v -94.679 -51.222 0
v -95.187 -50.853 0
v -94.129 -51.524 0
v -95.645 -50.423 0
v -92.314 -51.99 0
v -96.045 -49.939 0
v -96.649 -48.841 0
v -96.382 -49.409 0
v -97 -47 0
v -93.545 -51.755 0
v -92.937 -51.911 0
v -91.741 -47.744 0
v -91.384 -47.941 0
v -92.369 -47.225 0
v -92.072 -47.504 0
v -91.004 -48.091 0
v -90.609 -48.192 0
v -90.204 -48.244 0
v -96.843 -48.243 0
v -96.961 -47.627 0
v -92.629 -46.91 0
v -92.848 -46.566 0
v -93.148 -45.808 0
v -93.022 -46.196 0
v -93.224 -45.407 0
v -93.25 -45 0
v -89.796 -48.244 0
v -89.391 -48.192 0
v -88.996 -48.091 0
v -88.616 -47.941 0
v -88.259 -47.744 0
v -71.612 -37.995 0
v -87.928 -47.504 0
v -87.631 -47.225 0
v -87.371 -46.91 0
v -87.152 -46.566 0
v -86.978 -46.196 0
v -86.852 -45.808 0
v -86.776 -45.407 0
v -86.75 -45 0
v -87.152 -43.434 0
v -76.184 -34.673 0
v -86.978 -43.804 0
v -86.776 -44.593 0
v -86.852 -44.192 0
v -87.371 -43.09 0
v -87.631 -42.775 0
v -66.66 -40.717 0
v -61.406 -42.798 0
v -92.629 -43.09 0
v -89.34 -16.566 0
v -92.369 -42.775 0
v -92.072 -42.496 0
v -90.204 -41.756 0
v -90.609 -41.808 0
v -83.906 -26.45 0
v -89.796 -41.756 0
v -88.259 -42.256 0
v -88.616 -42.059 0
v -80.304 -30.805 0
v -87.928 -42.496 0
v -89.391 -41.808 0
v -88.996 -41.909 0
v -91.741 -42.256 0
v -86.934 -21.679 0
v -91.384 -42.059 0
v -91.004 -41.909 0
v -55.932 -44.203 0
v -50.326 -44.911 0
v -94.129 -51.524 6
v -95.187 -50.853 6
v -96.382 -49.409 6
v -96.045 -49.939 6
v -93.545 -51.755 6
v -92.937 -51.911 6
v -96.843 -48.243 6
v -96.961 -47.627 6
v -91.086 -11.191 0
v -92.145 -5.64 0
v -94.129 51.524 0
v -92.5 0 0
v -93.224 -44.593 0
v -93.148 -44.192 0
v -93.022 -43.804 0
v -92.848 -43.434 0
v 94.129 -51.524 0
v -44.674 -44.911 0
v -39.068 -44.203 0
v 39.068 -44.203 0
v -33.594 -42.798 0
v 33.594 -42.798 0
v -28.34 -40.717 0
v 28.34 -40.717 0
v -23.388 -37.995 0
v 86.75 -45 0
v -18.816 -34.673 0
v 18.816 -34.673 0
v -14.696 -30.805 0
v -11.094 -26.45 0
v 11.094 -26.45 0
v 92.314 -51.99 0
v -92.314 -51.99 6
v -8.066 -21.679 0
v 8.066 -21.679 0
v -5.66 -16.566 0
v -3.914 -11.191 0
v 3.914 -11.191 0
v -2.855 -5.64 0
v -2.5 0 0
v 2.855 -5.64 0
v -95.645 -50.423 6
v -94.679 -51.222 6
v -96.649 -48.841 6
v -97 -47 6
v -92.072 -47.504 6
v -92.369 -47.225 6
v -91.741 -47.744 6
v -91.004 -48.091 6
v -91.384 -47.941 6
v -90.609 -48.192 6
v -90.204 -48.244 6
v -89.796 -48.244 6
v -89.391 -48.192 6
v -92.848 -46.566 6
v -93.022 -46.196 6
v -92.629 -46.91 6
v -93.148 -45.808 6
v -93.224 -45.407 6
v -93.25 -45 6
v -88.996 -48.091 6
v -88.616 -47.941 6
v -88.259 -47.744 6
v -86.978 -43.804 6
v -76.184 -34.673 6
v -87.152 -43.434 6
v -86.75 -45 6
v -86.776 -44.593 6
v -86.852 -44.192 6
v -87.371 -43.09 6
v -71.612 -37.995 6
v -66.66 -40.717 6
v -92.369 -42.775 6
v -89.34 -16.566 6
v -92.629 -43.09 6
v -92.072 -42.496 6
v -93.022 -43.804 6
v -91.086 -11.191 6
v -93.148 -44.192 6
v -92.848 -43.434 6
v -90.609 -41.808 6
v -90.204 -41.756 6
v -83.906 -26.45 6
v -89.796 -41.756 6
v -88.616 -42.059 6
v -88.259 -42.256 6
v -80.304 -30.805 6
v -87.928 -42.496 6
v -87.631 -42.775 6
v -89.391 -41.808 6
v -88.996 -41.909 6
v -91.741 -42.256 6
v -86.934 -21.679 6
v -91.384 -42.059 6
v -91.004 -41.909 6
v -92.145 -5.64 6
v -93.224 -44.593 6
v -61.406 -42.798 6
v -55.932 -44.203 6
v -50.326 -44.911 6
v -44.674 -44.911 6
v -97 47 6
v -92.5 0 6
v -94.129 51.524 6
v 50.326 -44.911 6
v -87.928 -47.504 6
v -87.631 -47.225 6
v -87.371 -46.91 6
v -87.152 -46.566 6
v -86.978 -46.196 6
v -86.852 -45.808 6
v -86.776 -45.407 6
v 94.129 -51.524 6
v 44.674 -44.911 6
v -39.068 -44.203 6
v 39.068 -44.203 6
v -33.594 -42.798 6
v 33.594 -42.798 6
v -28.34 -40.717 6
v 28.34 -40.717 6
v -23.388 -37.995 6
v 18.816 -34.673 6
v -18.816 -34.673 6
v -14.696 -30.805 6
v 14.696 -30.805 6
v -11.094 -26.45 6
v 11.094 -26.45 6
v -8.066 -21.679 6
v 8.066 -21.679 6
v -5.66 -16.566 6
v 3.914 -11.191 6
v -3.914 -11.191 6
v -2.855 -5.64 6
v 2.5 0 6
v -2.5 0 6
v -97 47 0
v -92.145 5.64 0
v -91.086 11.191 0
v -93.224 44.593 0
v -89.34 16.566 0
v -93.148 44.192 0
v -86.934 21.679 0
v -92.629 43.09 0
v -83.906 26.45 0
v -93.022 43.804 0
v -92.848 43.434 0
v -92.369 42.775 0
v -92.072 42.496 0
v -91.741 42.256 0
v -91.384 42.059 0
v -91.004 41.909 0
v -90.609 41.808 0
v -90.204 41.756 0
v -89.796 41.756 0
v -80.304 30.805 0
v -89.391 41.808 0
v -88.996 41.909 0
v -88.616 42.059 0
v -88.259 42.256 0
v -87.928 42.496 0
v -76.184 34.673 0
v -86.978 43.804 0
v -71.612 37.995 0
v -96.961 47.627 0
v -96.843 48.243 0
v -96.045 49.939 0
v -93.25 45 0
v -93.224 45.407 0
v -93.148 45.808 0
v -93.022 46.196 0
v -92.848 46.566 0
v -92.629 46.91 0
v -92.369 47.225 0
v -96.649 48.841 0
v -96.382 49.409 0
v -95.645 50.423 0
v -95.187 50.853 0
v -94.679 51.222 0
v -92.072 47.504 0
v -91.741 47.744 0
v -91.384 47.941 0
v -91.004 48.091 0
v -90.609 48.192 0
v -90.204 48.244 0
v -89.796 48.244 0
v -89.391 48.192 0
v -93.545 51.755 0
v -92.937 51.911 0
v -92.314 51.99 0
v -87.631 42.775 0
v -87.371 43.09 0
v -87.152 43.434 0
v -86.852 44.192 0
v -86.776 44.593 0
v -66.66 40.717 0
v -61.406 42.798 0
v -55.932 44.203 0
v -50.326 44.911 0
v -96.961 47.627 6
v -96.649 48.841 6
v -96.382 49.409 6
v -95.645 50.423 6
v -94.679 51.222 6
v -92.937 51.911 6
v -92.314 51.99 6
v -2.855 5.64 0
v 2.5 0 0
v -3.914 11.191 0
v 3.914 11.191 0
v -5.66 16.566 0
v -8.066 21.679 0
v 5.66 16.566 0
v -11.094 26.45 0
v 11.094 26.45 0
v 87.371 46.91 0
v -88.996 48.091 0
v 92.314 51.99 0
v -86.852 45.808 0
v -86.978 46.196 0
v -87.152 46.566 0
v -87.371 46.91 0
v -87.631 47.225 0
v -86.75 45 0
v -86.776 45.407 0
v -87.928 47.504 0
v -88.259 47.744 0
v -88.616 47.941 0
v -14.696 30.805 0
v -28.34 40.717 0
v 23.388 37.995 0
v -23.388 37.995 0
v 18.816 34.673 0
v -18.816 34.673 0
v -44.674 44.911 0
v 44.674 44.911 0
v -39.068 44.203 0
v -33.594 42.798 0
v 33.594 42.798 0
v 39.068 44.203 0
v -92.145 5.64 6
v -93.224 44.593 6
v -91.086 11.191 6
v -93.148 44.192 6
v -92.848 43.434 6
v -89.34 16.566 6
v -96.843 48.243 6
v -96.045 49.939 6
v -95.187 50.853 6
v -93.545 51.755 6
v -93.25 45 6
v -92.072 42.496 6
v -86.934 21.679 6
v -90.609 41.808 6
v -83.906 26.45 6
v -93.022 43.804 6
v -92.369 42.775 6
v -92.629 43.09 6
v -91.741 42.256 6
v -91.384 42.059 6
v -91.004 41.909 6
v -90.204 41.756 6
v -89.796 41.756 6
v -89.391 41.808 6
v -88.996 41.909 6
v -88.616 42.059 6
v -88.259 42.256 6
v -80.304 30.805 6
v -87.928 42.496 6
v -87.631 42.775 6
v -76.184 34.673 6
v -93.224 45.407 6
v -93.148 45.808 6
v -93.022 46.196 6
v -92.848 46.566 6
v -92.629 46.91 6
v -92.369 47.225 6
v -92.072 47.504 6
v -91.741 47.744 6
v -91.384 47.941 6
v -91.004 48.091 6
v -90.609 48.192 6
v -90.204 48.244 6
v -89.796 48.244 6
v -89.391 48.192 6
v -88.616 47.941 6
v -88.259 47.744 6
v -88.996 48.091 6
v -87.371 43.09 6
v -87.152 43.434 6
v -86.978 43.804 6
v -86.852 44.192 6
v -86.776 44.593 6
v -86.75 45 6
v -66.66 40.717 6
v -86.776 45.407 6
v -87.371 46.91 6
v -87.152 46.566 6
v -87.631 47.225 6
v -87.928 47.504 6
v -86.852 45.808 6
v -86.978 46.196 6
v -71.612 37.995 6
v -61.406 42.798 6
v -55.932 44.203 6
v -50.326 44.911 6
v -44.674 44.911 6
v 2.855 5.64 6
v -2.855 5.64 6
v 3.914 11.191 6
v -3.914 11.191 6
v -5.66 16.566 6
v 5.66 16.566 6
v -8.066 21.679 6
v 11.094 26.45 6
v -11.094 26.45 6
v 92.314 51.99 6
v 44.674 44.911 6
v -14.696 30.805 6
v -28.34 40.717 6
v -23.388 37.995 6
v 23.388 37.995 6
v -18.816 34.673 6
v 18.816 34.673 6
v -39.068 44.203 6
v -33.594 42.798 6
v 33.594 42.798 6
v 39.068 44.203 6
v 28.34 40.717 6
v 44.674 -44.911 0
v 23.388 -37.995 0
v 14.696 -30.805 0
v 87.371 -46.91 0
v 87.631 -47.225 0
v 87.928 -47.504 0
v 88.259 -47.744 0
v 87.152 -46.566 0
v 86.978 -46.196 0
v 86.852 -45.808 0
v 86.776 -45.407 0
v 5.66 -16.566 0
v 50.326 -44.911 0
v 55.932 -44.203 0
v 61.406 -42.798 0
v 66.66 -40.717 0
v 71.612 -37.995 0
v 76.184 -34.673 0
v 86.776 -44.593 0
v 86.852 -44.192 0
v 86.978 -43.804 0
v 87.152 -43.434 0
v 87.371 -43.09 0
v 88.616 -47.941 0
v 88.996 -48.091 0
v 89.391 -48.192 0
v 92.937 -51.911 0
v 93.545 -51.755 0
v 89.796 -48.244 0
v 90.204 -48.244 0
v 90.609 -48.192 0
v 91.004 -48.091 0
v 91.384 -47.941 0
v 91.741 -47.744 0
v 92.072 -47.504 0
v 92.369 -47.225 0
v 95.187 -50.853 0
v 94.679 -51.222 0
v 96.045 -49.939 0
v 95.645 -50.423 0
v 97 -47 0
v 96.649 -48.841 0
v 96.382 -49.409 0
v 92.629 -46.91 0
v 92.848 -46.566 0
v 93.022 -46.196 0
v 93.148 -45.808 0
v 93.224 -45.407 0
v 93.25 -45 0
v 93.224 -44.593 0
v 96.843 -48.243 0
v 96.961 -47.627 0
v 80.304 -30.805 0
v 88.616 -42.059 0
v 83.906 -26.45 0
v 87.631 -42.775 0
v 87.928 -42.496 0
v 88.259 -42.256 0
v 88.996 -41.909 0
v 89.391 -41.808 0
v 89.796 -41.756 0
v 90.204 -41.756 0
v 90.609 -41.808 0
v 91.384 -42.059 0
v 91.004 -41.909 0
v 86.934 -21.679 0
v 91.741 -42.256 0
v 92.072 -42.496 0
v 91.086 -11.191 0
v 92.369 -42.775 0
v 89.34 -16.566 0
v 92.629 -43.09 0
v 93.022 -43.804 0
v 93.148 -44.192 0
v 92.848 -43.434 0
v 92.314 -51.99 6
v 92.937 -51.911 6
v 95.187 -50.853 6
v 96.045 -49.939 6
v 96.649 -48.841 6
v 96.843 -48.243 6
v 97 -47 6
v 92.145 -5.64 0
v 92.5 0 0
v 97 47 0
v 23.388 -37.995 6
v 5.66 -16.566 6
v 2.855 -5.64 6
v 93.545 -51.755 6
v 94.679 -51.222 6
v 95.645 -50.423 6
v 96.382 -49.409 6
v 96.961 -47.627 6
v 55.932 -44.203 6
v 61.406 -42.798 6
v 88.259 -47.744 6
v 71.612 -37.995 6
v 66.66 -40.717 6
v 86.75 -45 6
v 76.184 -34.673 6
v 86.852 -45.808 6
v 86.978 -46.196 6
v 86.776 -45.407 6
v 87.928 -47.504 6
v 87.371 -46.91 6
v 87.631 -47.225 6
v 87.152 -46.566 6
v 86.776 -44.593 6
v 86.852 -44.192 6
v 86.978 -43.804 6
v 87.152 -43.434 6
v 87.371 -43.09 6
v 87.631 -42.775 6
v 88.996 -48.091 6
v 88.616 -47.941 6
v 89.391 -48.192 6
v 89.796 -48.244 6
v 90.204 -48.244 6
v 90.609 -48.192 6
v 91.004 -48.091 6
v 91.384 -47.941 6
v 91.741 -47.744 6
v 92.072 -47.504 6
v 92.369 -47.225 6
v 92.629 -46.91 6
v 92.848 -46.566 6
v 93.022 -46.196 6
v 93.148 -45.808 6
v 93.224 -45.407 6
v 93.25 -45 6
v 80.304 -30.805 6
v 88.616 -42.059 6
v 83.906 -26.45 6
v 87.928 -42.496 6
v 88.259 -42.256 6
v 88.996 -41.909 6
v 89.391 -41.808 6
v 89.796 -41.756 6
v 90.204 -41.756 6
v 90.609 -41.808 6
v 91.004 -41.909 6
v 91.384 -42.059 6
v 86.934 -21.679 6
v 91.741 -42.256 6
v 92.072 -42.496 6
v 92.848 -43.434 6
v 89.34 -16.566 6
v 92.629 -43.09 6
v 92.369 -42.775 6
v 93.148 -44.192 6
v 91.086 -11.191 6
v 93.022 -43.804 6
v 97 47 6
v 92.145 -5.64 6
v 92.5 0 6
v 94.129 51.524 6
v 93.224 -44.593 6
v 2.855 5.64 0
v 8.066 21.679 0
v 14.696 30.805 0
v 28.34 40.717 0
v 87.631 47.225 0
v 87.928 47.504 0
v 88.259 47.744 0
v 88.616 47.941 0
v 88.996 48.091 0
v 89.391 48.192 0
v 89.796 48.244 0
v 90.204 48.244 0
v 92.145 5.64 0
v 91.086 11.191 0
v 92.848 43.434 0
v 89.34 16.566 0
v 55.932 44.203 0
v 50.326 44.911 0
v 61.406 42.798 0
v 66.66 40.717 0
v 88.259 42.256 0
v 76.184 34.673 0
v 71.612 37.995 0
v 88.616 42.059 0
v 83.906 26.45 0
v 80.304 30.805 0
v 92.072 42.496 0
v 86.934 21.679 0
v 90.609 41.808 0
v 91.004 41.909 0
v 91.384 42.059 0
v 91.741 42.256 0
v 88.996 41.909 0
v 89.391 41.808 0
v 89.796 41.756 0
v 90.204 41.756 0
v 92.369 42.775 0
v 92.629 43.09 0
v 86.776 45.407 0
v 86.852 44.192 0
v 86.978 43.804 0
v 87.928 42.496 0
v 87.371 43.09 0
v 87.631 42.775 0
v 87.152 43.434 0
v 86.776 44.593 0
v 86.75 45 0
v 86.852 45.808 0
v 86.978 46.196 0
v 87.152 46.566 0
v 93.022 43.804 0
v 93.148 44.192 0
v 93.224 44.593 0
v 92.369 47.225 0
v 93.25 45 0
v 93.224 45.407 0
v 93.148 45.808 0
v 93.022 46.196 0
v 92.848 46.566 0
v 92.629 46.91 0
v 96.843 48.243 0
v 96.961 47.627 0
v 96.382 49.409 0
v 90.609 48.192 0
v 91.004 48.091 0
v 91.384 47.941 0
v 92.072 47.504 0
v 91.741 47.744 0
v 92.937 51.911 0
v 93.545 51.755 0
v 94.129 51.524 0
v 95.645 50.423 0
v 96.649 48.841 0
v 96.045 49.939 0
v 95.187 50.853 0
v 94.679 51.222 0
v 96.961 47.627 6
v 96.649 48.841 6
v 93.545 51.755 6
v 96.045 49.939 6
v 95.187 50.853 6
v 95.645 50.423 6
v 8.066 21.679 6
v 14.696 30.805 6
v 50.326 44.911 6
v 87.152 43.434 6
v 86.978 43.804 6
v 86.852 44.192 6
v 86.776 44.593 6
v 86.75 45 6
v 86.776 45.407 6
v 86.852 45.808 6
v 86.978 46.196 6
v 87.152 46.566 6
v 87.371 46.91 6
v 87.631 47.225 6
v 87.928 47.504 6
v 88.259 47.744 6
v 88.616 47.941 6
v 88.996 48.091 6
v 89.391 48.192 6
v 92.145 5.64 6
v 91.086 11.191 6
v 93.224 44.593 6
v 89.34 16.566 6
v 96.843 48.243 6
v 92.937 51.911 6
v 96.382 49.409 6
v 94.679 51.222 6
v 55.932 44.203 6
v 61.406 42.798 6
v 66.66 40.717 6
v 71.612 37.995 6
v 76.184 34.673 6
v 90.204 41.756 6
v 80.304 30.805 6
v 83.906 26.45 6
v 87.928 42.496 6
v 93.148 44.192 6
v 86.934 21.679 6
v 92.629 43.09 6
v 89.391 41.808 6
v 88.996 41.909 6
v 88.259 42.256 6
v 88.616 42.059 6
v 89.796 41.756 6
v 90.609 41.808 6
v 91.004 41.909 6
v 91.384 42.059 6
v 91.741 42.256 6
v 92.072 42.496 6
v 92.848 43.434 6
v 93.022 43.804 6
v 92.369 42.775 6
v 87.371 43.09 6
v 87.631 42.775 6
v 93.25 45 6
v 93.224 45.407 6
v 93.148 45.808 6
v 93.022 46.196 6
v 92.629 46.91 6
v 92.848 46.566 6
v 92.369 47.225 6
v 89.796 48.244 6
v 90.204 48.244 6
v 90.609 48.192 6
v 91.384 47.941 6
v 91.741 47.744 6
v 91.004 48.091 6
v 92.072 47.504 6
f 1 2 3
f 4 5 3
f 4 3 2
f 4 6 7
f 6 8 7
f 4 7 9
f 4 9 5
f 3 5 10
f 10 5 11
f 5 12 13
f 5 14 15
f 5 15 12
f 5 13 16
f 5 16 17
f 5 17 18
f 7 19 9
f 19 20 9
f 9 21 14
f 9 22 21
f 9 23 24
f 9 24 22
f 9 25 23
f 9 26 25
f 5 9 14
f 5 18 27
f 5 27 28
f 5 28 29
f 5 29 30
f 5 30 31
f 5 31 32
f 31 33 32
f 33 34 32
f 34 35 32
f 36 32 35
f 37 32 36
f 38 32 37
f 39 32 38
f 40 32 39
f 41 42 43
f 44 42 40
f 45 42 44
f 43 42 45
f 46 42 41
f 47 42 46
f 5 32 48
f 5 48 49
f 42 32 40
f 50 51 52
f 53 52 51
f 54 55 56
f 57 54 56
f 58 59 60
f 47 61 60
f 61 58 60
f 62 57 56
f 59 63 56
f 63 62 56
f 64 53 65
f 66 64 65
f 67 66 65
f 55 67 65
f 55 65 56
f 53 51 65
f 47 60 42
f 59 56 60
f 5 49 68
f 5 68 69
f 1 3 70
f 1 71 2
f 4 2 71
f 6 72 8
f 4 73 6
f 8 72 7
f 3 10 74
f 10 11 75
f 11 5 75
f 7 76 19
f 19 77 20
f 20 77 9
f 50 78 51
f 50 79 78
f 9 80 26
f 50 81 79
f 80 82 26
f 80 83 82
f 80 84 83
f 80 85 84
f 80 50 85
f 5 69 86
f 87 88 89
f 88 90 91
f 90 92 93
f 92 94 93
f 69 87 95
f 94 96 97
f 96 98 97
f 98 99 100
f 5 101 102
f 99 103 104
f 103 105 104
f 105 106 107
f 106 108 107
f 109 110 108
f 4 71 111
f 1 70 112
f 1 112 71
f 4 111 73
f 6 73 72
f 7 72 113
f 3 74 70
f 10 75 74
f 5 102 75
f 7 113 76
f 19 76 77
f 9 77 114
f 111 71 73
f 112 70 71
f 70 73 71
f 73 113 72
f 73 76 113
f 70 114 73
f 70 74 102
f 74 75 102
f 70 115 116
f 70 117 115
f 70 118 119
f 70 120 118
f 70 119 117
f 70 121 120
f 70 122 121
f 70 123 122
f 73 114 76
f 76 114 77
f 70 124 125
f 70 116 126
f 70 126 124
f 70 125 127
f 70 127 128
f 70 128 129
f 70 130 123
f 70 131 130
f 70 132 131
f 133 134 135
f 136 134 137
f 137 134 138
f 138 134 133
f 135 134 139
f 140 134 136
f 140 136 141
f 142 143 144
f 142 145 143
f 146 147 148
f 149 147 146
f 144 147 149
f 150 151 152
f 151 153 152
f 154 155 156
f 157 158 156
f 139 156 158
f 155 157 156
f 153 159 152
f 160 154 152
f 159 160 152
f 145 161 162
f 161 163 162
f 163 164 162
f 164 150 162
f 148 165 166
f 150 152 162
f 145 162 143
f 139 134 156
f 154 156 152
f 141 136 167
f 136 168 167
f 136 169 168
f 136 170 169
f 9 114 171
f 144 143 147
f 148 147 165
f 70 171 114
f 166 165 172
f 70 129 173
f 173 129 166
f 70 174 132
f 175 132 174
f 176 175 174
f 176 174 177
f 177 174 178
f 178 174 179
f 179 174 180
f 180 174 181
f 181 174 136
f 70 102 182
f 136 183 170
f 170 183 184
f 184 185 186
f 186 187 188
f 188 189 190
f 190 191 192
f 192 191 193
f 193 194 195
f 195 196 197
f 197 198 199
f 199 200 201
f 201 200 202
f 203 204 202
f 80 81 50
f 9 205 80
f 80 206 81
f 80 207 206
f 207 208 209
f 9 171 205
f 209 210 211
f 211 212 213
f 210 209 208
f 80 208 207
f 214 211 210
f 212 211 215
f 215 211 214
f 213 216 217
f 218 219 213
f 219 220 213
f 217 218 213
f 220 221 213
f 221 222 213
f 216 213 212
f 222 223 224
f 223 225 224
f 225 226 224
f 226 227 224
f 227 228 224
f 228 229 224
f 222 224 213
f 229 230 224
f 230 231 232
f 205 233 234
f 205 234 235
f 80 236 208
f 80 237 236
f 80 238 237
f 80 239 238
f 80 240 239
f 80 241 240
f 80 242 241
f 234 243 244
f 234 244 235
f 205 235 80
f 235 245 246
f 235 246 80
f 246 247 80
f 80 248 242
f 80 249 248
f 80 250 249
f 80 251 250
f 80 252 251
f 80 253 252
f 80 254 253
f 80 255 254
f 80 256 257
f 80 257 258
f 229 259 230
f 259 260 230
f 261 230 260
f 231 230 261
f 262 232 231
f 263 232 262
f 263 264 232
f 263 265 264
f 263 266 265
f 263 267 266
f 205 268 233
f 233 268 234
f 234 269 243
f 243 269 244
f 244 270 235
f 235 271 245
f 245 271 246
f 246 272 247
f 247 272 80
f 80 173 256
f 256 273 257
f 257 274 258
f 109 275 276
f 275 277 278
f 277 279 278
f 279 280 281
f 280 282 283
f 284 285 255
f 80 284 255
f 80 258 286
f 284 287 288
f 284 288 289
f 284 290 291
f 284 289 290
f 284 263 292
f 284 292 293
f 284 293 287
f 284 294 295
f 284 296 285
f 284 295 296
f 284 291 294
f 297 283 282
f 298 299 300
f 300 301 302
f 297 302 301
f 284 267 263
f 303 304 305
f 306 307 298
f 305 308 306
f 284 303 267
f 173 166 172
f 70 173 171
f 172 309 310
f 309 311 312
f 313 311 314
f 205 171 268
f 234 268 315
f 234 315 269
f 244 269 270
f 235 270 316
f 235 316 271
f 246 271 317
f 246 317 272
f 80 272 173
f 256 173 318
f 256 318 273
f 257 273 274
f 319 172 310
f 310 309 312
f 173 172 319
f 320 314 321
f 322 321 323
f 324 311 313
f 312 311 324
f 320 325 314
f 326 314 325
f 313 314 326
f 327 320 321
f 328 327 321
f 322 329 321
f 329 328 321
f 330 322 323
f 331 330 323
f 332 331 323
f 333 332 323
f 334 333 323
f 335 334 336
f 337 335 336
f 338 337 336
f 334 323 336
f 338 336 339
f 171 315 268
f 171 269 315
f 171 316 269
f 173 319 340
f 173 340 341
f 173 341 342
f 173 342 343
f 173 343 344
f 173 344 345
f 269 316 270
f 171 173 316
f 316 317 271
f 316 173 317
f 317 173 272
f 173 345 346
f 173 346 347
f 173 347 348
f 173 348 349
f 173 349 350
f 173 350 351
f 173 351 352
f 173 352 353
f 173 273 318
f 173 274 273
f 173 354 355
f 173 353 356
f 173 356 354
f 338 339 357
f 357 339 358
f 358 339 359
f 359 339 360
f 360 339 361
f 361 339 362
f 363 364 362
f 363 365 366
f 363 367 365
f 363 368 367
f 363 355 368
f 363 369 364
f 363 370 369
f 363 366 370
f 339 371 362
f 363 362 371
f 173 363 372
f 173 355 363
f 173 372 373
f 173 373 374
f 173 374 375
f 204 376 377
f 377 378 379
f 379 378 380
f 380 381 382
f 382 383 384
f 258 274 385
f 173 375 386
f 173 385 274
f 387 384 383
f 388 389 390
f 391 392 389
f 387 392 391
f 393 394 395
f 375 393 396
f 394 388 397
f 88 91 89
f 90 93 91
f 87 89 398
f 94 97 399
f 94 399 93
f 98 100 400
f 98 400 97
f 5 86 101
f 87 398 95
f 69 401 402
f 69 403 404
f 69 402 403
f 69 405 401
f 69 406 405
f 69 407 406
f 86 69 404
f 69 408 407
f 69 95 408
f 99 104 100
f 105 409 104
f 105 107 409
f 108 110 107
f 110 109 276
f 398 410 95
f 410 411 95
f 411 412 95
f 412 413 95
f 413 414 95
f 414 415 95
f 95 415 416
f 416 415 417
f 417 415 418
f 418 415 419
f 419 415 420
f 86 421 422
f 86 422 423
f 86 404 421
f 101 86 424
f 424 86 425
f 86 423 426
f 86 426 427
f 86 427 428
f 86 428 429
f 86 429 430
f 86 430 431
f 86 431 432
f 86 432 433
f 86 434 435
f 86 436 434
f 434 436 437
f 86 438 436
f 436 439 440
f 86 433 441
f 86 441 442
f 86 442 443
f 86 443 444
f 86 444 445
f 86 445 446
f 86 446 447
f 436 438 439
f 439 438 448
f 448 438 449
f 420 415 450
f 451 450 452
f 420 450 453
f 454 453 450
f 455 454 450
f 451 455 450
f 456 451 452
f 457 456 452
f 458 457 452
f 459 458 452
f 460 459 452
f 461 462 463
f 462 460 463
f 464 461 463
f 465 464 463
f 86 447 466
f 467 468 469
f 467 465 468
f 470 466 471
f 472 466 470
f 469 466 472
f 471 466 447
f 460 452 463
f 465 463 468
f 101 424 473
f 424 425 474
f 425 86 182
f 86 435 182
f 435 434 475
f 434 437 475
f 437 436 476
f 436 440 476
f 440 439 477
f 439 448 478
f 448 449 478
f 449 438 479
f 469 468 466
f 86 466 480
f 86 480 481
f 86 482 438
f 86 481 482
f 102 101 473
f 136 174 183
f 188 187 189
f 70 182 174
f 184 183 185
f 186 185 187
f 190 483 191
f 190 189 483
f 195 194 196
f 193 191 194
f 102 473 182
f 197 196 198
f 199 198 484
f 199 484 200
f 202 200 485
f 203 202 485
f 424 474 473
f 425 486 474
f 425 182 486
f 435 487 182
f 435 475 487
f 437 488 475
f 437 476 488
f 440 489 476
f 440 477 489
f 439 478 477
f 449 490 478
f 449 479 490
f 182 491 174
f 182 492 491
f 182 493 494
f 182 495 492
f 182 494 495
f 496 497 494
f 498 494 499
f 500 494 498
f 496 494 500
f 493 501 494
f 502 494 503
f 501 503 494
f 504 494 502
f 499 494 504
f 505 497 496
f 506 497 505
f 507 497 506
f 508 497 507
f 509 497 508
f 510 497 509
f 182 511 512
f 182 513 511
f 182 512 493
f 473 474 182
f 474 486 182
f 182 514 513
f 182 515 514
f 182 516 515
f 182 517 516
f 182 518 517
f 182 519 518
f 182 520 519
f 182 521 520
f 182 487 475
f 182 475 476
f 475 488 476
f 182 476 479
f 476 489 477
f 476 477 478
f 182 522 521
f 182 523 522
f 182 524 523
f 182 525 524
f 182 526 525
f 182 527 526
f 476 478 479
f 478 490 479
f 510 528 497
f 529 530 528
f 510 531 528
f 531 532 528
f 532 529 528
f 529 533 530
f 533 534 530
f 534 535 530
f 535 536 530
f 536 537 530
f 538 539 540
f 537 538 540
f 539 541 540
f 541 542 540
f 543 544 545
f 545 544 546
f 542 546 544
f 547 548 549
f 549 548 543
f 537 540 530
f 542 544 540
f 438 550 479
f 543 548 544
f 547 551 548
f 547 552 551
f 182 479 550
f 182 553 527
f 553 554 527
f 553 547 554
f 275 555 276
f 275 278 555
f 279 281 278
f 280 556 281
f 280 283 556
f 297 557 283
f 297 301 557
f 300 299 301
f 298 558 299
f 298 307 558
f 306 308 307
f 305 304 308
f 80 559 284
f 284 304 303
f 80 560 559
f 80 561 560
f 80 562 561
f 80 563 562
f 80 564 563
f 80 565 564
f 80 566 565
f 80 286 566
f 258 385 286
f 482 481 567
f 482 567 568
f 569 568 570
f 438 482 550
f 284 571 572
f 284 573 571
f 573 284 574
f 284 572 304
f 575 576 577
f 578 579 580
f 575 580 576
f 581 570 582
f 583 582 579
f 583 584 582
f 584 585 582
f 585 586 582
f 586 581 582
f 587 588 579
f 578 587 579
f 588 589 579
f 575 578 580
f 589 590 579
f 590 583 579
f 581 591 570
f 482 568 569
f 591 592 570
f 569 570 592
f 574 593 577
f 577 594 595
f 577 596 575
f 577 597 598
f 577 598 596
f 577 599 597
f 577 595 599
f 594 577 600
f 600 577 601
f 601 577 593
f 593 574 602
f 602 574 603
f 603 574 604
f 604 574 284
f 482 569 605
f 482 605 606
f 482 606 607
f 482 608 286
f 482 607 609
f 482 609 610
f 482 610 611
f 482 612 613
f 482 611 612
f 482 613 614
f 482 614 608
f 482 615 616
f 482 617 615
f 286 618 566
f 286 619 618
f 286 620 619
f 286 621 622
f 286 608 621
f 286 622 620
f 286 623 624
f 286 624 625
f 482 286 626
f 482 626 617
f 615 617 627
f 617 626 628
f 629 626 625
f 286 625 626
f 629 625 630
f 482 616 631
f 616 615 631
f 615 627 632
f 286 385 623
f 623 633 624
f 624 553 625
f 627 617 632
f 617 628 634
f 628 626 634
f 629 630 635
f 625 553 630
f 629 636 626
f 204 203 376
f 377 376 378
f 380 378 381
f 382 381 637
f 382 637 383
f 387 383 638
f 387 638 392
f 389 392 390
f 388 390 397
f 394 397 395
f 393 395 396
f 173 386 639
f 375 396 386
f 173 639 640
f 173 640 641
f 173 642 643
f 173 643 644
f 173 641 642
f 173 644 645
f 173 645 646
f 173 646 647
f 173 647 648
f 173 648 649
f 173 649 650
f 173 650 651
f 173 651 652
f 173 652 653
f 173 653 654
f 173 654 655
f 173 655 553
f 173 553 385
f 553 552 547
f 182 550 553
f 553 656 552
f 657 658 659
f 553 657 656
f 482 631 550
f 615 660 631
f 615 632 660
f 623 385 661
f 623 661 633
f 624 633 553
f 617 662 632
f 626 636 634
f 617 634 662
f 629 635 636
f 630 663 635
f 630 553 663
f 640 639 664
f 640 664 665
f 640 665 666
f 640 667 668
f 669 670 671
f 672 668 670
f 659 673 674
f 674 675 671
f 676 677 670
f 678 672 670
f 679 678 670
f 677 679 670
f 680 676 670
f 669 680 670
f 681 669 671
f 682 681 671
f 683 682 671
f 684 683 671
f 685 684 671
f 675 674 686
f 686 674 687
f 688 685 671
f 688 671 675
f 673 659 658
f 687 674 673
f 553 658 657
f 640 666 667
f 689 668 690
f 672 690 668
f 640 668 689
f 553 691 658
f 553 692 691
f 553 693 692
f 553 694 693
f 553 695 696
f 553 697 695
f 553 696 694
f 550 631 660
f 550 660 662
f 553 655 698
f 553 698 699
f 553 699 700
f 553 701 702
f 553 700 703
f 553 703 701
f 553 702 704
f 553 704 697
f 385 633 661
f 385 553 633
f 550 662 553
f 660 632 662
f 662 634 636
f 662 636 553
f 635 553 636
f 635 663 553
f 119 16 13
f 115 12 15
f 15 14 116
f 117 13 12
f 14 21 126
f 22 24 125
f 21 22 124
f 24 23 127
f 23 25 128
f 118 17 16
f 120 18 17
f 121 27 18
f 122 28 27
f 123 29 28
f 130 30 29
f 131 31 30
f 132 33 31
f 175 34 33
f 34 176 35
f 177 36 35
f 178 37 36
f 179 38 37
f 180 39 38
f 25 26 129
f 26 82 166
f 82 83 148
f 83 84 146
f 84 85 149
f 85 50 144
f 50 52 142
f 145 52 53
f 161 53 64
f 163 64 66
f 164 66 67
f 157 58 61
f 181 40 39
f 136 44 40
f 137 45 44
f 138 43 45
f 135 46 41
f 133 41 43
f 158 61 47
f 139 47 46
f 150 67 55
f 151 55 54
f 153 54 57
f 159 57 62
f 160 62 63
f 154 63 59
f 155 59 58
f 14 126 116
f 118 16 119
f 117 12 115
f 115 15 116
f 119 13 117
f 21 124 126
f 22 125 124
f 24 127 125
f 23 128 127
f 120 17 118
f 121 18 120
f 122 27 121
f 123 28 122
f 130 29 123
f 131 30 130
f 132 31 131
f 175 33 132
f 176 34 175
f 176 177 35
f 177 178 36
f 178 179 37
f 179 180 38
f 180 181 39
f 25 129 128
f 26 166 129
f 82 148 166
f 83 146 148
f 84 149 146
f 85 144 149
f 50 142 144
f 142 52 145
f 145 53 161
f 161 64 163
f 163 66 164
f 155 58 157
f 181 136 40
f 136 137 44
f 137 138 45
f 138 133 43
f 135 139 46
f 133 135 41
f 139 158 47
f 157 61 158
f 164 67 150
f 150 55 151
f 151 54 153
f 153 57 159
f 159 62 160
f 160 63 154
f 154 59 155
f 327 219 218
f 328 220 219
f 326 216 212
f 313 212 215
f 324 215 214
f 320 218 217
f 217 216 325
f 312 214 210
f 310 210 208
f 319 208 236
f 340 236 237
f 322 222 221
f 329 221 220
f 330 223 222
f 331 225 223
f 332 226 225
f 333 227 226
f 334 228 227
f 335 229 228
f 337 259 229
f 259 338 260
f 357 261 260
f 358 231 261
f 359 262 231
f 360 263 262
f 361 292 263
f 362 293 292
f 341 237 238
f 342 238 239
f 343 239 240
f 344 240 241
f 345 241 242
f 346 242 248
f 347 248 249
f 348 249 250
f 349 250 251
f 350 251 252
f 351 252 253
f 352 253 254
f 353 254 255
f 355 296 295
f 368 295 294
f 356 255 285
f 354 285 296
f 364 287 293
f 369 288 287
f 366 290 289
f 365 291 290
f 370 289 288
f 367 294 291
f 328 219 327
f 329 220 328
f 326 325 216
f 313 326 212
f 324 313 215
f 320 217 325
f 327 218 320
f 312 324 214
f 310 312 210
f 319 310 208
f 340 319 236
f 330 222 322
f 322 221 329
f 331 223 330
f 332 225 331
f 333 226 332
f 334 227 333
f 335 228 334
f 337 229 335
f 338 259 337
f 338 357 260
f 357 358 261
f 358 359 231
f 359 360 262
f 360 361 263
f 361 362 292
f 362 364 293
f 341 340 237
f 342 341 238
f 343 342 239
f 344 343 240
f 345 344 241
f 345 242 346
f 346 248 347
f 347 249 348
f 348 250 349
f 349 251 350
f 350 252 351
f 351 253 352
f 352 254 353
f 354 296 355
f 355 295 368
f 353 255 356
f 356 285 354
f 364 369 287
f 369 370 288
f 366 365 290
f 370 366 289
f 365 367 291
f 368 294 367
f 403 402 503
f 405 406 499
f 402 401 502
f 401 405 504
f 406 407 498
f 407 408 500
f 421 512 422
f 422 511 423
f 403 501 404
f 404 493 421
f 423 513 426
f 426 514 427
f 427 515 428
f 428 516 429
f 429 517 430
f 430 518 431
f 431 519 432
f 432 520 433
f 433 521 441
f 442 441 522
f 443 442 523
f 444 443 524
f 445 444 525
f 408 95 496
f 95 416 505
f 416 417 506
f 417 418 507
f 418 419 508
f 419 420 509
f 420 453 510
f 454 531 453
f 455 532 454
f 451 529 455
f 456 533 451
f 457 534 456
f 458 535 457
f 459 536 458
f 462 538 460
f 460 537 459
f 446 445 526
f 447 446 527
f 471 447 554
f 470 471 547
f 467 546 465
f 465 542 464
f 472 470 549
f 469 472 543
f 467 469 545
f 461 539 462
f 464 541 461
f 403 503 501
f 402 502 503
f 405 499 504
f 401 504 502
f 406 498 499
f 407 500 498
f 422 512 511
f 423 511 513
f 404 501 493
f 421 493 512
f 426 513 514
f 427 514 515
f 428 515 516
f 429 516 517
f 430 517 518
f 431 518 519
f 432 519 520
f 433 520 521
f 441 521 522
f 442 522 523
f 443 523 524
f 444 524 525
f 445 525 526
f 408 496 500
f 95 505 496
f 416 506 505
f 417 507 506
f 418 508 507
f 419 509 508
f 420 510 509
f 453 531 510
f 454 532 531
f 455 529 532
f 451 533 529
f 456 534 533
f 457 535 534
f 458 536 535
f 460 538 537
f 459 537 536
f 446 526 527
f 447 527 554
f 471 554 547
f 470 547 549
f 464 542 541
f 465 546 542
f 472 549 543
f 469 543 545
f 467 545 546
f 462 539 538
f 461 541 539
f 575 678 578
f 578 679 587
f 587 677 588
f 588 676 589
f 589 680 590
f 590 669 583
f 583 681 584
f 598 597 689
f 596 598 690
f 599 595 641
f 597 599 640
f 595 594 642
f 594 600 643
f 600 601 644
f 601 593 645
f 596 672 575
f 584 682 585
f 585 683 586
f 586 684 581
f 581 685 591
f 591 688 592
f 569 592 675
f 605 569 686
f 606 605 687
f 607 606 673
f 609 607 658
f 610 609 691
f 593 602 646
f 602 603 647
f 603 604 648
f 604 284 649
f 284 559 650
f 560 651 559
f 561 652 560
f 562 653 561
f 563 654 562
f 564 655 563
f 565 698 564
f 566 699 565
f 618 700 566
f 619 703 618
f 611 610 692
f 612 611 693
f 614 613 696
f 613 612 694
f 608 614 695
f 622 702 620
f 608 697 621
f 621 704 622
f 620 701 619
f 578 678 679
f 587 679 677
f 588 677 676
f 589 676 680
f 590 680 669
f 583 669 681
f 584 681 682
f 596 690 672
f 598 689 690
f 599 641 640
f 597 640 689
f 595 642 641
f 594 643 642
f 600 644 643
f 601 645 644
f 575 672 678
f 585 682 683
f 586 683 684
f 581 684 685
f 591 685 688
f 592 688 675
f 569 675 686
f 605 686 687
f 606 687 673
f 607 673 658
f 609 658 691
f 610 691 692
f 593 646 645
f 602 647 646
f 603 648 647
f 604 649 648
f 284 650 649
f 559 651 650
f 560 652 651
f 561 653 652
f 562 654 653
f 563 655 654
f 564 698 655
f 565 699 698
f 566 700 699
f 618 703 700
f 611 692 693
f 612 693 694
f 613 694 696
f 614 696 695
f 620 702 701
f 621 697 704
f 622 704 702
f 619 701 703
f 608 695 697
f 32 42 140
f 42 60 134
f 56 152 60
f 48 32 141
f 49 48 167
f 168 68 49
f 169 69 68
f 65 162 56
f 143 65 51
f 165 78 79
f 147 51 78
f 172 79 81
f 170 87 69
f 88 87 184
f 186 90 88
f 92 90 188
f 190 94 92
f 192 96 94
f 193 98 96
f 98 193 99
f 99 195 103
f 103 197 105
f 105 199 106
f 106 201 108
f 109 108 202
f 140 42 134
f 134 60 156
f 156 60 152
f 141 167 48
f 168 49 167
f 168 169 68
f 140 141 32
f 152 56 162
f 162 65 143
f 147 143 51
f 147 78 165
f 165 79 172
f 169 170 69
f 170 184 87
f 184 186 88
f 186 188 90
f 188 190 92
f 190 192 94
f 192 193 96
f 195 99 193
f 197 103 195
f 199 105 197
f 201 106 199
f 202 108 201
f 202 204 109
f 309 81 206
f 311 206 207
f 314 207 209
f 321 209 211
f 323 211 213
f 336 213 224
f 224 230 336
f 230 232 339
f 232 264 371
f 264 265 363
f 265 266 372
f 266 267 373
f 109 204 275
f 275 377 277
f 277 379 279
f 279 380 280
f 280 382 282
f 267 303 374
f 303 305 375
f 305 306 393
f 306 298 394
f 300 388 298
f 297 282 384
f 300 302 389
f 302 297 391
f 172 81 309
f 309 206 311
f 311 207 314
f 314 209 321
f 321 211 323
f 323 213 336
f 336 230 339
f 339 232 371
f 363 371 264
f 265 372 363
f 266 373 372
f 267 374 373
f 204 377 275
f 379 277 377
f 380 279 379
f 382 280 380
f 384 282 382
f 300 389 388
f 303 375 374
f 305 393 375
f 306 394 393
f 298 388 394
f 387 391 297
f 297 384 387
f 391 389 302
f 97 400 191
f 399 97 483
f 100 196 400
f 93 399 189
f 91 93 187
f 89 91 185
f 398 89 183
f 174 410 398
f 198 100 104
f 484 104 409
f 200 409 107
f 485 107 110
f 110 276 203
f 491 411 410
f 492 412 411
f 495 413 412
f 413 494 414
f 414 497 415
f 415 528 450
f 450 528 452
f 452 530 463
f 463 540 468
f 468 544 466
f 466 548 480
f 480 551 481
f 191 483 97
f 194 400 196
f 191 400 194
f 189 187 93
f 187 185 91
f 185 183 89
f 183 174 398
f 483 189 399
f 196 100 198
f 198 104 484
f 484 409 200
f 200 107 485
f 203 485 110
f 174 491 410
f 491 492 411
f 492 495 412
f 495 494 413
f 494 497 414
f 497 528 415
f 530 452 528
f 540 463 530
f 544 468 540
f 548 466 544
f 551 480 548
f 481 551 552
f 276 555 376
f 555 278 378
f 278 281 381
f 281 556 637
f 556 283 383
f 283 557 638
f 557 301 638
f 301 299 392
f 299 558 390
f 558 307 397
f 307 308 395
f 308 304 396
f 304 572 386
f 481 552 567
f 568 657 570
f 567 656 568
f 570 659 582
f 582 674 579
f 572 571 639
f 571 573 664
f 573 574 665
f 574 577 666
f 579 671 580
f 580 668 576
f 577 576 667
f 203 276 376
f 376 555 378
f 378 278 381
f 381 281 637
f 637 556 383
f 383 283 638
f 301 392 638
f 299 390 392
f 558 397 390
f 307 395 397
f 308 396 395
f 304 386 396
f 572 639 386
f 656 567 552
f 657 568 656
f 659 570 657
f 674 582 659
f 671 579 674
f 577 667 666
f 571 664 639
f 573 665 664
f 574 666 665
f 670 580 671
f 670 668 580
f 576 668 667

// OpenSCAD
$fn = 50;

difference() {
	union() {
		hull() {
			translate(v = [-92.0, 47.0, 0]) {
				cylinder(h = 6, r = 5);
			}
			translate(v = [92.0, 47.0, 0]) {
				cylinder(h = 6, r = 5);
			}
			translate(v = [-92.0, -47.0, 0]) {
				cylinder(h = 6, r = 5);
			}
			translate(v = [92.0, -47.0, 0]) {
				cylinder(h = 6, r = 5);
			}
		}
	}
	union() {
		translate(v = [-90.0, -45.0, -100.0]) {
			cylinder(h = 200, r = 3.25);
		}
		translate(v = [-90.0, 45.0, -100.0]) {
			cylinder(h = 200, r = 3.25);
		}
		translate(v = [90.0, -45.0, -100.0]) {
			cylinder(h = 200, r = 3.25);
		}
		translate(v = [90.0, 45.0, -100.0]) {
			cylinder(h = 200, r = 3.25);
		}
		translate(v = [-90.0, -45.0, -100.0]) {
			cylinder(h = 200, r = 1.8);
		}
		translate(v = [-90.0, 45.0, -100.0]) {
			cylinder(h = 200, r = 1.8);
		}
		translate(v = [90.0, -45.0, -100.0]) {
			cylinder(h = 200, r = 1.8);
		}
		translate(v = [90.0, 45.0, -100.0]) {
			cylinder(h = 200, r = 1.8);
		}
		translate(v = [-47.5, 0, 0.0]) {
			cylinder(h = 6, r = 45.0);
		}
		translate(v = [47.5, 0, 0.0]) {
			cylinder(h = 6, r = 45.0);
		}
	}
}
